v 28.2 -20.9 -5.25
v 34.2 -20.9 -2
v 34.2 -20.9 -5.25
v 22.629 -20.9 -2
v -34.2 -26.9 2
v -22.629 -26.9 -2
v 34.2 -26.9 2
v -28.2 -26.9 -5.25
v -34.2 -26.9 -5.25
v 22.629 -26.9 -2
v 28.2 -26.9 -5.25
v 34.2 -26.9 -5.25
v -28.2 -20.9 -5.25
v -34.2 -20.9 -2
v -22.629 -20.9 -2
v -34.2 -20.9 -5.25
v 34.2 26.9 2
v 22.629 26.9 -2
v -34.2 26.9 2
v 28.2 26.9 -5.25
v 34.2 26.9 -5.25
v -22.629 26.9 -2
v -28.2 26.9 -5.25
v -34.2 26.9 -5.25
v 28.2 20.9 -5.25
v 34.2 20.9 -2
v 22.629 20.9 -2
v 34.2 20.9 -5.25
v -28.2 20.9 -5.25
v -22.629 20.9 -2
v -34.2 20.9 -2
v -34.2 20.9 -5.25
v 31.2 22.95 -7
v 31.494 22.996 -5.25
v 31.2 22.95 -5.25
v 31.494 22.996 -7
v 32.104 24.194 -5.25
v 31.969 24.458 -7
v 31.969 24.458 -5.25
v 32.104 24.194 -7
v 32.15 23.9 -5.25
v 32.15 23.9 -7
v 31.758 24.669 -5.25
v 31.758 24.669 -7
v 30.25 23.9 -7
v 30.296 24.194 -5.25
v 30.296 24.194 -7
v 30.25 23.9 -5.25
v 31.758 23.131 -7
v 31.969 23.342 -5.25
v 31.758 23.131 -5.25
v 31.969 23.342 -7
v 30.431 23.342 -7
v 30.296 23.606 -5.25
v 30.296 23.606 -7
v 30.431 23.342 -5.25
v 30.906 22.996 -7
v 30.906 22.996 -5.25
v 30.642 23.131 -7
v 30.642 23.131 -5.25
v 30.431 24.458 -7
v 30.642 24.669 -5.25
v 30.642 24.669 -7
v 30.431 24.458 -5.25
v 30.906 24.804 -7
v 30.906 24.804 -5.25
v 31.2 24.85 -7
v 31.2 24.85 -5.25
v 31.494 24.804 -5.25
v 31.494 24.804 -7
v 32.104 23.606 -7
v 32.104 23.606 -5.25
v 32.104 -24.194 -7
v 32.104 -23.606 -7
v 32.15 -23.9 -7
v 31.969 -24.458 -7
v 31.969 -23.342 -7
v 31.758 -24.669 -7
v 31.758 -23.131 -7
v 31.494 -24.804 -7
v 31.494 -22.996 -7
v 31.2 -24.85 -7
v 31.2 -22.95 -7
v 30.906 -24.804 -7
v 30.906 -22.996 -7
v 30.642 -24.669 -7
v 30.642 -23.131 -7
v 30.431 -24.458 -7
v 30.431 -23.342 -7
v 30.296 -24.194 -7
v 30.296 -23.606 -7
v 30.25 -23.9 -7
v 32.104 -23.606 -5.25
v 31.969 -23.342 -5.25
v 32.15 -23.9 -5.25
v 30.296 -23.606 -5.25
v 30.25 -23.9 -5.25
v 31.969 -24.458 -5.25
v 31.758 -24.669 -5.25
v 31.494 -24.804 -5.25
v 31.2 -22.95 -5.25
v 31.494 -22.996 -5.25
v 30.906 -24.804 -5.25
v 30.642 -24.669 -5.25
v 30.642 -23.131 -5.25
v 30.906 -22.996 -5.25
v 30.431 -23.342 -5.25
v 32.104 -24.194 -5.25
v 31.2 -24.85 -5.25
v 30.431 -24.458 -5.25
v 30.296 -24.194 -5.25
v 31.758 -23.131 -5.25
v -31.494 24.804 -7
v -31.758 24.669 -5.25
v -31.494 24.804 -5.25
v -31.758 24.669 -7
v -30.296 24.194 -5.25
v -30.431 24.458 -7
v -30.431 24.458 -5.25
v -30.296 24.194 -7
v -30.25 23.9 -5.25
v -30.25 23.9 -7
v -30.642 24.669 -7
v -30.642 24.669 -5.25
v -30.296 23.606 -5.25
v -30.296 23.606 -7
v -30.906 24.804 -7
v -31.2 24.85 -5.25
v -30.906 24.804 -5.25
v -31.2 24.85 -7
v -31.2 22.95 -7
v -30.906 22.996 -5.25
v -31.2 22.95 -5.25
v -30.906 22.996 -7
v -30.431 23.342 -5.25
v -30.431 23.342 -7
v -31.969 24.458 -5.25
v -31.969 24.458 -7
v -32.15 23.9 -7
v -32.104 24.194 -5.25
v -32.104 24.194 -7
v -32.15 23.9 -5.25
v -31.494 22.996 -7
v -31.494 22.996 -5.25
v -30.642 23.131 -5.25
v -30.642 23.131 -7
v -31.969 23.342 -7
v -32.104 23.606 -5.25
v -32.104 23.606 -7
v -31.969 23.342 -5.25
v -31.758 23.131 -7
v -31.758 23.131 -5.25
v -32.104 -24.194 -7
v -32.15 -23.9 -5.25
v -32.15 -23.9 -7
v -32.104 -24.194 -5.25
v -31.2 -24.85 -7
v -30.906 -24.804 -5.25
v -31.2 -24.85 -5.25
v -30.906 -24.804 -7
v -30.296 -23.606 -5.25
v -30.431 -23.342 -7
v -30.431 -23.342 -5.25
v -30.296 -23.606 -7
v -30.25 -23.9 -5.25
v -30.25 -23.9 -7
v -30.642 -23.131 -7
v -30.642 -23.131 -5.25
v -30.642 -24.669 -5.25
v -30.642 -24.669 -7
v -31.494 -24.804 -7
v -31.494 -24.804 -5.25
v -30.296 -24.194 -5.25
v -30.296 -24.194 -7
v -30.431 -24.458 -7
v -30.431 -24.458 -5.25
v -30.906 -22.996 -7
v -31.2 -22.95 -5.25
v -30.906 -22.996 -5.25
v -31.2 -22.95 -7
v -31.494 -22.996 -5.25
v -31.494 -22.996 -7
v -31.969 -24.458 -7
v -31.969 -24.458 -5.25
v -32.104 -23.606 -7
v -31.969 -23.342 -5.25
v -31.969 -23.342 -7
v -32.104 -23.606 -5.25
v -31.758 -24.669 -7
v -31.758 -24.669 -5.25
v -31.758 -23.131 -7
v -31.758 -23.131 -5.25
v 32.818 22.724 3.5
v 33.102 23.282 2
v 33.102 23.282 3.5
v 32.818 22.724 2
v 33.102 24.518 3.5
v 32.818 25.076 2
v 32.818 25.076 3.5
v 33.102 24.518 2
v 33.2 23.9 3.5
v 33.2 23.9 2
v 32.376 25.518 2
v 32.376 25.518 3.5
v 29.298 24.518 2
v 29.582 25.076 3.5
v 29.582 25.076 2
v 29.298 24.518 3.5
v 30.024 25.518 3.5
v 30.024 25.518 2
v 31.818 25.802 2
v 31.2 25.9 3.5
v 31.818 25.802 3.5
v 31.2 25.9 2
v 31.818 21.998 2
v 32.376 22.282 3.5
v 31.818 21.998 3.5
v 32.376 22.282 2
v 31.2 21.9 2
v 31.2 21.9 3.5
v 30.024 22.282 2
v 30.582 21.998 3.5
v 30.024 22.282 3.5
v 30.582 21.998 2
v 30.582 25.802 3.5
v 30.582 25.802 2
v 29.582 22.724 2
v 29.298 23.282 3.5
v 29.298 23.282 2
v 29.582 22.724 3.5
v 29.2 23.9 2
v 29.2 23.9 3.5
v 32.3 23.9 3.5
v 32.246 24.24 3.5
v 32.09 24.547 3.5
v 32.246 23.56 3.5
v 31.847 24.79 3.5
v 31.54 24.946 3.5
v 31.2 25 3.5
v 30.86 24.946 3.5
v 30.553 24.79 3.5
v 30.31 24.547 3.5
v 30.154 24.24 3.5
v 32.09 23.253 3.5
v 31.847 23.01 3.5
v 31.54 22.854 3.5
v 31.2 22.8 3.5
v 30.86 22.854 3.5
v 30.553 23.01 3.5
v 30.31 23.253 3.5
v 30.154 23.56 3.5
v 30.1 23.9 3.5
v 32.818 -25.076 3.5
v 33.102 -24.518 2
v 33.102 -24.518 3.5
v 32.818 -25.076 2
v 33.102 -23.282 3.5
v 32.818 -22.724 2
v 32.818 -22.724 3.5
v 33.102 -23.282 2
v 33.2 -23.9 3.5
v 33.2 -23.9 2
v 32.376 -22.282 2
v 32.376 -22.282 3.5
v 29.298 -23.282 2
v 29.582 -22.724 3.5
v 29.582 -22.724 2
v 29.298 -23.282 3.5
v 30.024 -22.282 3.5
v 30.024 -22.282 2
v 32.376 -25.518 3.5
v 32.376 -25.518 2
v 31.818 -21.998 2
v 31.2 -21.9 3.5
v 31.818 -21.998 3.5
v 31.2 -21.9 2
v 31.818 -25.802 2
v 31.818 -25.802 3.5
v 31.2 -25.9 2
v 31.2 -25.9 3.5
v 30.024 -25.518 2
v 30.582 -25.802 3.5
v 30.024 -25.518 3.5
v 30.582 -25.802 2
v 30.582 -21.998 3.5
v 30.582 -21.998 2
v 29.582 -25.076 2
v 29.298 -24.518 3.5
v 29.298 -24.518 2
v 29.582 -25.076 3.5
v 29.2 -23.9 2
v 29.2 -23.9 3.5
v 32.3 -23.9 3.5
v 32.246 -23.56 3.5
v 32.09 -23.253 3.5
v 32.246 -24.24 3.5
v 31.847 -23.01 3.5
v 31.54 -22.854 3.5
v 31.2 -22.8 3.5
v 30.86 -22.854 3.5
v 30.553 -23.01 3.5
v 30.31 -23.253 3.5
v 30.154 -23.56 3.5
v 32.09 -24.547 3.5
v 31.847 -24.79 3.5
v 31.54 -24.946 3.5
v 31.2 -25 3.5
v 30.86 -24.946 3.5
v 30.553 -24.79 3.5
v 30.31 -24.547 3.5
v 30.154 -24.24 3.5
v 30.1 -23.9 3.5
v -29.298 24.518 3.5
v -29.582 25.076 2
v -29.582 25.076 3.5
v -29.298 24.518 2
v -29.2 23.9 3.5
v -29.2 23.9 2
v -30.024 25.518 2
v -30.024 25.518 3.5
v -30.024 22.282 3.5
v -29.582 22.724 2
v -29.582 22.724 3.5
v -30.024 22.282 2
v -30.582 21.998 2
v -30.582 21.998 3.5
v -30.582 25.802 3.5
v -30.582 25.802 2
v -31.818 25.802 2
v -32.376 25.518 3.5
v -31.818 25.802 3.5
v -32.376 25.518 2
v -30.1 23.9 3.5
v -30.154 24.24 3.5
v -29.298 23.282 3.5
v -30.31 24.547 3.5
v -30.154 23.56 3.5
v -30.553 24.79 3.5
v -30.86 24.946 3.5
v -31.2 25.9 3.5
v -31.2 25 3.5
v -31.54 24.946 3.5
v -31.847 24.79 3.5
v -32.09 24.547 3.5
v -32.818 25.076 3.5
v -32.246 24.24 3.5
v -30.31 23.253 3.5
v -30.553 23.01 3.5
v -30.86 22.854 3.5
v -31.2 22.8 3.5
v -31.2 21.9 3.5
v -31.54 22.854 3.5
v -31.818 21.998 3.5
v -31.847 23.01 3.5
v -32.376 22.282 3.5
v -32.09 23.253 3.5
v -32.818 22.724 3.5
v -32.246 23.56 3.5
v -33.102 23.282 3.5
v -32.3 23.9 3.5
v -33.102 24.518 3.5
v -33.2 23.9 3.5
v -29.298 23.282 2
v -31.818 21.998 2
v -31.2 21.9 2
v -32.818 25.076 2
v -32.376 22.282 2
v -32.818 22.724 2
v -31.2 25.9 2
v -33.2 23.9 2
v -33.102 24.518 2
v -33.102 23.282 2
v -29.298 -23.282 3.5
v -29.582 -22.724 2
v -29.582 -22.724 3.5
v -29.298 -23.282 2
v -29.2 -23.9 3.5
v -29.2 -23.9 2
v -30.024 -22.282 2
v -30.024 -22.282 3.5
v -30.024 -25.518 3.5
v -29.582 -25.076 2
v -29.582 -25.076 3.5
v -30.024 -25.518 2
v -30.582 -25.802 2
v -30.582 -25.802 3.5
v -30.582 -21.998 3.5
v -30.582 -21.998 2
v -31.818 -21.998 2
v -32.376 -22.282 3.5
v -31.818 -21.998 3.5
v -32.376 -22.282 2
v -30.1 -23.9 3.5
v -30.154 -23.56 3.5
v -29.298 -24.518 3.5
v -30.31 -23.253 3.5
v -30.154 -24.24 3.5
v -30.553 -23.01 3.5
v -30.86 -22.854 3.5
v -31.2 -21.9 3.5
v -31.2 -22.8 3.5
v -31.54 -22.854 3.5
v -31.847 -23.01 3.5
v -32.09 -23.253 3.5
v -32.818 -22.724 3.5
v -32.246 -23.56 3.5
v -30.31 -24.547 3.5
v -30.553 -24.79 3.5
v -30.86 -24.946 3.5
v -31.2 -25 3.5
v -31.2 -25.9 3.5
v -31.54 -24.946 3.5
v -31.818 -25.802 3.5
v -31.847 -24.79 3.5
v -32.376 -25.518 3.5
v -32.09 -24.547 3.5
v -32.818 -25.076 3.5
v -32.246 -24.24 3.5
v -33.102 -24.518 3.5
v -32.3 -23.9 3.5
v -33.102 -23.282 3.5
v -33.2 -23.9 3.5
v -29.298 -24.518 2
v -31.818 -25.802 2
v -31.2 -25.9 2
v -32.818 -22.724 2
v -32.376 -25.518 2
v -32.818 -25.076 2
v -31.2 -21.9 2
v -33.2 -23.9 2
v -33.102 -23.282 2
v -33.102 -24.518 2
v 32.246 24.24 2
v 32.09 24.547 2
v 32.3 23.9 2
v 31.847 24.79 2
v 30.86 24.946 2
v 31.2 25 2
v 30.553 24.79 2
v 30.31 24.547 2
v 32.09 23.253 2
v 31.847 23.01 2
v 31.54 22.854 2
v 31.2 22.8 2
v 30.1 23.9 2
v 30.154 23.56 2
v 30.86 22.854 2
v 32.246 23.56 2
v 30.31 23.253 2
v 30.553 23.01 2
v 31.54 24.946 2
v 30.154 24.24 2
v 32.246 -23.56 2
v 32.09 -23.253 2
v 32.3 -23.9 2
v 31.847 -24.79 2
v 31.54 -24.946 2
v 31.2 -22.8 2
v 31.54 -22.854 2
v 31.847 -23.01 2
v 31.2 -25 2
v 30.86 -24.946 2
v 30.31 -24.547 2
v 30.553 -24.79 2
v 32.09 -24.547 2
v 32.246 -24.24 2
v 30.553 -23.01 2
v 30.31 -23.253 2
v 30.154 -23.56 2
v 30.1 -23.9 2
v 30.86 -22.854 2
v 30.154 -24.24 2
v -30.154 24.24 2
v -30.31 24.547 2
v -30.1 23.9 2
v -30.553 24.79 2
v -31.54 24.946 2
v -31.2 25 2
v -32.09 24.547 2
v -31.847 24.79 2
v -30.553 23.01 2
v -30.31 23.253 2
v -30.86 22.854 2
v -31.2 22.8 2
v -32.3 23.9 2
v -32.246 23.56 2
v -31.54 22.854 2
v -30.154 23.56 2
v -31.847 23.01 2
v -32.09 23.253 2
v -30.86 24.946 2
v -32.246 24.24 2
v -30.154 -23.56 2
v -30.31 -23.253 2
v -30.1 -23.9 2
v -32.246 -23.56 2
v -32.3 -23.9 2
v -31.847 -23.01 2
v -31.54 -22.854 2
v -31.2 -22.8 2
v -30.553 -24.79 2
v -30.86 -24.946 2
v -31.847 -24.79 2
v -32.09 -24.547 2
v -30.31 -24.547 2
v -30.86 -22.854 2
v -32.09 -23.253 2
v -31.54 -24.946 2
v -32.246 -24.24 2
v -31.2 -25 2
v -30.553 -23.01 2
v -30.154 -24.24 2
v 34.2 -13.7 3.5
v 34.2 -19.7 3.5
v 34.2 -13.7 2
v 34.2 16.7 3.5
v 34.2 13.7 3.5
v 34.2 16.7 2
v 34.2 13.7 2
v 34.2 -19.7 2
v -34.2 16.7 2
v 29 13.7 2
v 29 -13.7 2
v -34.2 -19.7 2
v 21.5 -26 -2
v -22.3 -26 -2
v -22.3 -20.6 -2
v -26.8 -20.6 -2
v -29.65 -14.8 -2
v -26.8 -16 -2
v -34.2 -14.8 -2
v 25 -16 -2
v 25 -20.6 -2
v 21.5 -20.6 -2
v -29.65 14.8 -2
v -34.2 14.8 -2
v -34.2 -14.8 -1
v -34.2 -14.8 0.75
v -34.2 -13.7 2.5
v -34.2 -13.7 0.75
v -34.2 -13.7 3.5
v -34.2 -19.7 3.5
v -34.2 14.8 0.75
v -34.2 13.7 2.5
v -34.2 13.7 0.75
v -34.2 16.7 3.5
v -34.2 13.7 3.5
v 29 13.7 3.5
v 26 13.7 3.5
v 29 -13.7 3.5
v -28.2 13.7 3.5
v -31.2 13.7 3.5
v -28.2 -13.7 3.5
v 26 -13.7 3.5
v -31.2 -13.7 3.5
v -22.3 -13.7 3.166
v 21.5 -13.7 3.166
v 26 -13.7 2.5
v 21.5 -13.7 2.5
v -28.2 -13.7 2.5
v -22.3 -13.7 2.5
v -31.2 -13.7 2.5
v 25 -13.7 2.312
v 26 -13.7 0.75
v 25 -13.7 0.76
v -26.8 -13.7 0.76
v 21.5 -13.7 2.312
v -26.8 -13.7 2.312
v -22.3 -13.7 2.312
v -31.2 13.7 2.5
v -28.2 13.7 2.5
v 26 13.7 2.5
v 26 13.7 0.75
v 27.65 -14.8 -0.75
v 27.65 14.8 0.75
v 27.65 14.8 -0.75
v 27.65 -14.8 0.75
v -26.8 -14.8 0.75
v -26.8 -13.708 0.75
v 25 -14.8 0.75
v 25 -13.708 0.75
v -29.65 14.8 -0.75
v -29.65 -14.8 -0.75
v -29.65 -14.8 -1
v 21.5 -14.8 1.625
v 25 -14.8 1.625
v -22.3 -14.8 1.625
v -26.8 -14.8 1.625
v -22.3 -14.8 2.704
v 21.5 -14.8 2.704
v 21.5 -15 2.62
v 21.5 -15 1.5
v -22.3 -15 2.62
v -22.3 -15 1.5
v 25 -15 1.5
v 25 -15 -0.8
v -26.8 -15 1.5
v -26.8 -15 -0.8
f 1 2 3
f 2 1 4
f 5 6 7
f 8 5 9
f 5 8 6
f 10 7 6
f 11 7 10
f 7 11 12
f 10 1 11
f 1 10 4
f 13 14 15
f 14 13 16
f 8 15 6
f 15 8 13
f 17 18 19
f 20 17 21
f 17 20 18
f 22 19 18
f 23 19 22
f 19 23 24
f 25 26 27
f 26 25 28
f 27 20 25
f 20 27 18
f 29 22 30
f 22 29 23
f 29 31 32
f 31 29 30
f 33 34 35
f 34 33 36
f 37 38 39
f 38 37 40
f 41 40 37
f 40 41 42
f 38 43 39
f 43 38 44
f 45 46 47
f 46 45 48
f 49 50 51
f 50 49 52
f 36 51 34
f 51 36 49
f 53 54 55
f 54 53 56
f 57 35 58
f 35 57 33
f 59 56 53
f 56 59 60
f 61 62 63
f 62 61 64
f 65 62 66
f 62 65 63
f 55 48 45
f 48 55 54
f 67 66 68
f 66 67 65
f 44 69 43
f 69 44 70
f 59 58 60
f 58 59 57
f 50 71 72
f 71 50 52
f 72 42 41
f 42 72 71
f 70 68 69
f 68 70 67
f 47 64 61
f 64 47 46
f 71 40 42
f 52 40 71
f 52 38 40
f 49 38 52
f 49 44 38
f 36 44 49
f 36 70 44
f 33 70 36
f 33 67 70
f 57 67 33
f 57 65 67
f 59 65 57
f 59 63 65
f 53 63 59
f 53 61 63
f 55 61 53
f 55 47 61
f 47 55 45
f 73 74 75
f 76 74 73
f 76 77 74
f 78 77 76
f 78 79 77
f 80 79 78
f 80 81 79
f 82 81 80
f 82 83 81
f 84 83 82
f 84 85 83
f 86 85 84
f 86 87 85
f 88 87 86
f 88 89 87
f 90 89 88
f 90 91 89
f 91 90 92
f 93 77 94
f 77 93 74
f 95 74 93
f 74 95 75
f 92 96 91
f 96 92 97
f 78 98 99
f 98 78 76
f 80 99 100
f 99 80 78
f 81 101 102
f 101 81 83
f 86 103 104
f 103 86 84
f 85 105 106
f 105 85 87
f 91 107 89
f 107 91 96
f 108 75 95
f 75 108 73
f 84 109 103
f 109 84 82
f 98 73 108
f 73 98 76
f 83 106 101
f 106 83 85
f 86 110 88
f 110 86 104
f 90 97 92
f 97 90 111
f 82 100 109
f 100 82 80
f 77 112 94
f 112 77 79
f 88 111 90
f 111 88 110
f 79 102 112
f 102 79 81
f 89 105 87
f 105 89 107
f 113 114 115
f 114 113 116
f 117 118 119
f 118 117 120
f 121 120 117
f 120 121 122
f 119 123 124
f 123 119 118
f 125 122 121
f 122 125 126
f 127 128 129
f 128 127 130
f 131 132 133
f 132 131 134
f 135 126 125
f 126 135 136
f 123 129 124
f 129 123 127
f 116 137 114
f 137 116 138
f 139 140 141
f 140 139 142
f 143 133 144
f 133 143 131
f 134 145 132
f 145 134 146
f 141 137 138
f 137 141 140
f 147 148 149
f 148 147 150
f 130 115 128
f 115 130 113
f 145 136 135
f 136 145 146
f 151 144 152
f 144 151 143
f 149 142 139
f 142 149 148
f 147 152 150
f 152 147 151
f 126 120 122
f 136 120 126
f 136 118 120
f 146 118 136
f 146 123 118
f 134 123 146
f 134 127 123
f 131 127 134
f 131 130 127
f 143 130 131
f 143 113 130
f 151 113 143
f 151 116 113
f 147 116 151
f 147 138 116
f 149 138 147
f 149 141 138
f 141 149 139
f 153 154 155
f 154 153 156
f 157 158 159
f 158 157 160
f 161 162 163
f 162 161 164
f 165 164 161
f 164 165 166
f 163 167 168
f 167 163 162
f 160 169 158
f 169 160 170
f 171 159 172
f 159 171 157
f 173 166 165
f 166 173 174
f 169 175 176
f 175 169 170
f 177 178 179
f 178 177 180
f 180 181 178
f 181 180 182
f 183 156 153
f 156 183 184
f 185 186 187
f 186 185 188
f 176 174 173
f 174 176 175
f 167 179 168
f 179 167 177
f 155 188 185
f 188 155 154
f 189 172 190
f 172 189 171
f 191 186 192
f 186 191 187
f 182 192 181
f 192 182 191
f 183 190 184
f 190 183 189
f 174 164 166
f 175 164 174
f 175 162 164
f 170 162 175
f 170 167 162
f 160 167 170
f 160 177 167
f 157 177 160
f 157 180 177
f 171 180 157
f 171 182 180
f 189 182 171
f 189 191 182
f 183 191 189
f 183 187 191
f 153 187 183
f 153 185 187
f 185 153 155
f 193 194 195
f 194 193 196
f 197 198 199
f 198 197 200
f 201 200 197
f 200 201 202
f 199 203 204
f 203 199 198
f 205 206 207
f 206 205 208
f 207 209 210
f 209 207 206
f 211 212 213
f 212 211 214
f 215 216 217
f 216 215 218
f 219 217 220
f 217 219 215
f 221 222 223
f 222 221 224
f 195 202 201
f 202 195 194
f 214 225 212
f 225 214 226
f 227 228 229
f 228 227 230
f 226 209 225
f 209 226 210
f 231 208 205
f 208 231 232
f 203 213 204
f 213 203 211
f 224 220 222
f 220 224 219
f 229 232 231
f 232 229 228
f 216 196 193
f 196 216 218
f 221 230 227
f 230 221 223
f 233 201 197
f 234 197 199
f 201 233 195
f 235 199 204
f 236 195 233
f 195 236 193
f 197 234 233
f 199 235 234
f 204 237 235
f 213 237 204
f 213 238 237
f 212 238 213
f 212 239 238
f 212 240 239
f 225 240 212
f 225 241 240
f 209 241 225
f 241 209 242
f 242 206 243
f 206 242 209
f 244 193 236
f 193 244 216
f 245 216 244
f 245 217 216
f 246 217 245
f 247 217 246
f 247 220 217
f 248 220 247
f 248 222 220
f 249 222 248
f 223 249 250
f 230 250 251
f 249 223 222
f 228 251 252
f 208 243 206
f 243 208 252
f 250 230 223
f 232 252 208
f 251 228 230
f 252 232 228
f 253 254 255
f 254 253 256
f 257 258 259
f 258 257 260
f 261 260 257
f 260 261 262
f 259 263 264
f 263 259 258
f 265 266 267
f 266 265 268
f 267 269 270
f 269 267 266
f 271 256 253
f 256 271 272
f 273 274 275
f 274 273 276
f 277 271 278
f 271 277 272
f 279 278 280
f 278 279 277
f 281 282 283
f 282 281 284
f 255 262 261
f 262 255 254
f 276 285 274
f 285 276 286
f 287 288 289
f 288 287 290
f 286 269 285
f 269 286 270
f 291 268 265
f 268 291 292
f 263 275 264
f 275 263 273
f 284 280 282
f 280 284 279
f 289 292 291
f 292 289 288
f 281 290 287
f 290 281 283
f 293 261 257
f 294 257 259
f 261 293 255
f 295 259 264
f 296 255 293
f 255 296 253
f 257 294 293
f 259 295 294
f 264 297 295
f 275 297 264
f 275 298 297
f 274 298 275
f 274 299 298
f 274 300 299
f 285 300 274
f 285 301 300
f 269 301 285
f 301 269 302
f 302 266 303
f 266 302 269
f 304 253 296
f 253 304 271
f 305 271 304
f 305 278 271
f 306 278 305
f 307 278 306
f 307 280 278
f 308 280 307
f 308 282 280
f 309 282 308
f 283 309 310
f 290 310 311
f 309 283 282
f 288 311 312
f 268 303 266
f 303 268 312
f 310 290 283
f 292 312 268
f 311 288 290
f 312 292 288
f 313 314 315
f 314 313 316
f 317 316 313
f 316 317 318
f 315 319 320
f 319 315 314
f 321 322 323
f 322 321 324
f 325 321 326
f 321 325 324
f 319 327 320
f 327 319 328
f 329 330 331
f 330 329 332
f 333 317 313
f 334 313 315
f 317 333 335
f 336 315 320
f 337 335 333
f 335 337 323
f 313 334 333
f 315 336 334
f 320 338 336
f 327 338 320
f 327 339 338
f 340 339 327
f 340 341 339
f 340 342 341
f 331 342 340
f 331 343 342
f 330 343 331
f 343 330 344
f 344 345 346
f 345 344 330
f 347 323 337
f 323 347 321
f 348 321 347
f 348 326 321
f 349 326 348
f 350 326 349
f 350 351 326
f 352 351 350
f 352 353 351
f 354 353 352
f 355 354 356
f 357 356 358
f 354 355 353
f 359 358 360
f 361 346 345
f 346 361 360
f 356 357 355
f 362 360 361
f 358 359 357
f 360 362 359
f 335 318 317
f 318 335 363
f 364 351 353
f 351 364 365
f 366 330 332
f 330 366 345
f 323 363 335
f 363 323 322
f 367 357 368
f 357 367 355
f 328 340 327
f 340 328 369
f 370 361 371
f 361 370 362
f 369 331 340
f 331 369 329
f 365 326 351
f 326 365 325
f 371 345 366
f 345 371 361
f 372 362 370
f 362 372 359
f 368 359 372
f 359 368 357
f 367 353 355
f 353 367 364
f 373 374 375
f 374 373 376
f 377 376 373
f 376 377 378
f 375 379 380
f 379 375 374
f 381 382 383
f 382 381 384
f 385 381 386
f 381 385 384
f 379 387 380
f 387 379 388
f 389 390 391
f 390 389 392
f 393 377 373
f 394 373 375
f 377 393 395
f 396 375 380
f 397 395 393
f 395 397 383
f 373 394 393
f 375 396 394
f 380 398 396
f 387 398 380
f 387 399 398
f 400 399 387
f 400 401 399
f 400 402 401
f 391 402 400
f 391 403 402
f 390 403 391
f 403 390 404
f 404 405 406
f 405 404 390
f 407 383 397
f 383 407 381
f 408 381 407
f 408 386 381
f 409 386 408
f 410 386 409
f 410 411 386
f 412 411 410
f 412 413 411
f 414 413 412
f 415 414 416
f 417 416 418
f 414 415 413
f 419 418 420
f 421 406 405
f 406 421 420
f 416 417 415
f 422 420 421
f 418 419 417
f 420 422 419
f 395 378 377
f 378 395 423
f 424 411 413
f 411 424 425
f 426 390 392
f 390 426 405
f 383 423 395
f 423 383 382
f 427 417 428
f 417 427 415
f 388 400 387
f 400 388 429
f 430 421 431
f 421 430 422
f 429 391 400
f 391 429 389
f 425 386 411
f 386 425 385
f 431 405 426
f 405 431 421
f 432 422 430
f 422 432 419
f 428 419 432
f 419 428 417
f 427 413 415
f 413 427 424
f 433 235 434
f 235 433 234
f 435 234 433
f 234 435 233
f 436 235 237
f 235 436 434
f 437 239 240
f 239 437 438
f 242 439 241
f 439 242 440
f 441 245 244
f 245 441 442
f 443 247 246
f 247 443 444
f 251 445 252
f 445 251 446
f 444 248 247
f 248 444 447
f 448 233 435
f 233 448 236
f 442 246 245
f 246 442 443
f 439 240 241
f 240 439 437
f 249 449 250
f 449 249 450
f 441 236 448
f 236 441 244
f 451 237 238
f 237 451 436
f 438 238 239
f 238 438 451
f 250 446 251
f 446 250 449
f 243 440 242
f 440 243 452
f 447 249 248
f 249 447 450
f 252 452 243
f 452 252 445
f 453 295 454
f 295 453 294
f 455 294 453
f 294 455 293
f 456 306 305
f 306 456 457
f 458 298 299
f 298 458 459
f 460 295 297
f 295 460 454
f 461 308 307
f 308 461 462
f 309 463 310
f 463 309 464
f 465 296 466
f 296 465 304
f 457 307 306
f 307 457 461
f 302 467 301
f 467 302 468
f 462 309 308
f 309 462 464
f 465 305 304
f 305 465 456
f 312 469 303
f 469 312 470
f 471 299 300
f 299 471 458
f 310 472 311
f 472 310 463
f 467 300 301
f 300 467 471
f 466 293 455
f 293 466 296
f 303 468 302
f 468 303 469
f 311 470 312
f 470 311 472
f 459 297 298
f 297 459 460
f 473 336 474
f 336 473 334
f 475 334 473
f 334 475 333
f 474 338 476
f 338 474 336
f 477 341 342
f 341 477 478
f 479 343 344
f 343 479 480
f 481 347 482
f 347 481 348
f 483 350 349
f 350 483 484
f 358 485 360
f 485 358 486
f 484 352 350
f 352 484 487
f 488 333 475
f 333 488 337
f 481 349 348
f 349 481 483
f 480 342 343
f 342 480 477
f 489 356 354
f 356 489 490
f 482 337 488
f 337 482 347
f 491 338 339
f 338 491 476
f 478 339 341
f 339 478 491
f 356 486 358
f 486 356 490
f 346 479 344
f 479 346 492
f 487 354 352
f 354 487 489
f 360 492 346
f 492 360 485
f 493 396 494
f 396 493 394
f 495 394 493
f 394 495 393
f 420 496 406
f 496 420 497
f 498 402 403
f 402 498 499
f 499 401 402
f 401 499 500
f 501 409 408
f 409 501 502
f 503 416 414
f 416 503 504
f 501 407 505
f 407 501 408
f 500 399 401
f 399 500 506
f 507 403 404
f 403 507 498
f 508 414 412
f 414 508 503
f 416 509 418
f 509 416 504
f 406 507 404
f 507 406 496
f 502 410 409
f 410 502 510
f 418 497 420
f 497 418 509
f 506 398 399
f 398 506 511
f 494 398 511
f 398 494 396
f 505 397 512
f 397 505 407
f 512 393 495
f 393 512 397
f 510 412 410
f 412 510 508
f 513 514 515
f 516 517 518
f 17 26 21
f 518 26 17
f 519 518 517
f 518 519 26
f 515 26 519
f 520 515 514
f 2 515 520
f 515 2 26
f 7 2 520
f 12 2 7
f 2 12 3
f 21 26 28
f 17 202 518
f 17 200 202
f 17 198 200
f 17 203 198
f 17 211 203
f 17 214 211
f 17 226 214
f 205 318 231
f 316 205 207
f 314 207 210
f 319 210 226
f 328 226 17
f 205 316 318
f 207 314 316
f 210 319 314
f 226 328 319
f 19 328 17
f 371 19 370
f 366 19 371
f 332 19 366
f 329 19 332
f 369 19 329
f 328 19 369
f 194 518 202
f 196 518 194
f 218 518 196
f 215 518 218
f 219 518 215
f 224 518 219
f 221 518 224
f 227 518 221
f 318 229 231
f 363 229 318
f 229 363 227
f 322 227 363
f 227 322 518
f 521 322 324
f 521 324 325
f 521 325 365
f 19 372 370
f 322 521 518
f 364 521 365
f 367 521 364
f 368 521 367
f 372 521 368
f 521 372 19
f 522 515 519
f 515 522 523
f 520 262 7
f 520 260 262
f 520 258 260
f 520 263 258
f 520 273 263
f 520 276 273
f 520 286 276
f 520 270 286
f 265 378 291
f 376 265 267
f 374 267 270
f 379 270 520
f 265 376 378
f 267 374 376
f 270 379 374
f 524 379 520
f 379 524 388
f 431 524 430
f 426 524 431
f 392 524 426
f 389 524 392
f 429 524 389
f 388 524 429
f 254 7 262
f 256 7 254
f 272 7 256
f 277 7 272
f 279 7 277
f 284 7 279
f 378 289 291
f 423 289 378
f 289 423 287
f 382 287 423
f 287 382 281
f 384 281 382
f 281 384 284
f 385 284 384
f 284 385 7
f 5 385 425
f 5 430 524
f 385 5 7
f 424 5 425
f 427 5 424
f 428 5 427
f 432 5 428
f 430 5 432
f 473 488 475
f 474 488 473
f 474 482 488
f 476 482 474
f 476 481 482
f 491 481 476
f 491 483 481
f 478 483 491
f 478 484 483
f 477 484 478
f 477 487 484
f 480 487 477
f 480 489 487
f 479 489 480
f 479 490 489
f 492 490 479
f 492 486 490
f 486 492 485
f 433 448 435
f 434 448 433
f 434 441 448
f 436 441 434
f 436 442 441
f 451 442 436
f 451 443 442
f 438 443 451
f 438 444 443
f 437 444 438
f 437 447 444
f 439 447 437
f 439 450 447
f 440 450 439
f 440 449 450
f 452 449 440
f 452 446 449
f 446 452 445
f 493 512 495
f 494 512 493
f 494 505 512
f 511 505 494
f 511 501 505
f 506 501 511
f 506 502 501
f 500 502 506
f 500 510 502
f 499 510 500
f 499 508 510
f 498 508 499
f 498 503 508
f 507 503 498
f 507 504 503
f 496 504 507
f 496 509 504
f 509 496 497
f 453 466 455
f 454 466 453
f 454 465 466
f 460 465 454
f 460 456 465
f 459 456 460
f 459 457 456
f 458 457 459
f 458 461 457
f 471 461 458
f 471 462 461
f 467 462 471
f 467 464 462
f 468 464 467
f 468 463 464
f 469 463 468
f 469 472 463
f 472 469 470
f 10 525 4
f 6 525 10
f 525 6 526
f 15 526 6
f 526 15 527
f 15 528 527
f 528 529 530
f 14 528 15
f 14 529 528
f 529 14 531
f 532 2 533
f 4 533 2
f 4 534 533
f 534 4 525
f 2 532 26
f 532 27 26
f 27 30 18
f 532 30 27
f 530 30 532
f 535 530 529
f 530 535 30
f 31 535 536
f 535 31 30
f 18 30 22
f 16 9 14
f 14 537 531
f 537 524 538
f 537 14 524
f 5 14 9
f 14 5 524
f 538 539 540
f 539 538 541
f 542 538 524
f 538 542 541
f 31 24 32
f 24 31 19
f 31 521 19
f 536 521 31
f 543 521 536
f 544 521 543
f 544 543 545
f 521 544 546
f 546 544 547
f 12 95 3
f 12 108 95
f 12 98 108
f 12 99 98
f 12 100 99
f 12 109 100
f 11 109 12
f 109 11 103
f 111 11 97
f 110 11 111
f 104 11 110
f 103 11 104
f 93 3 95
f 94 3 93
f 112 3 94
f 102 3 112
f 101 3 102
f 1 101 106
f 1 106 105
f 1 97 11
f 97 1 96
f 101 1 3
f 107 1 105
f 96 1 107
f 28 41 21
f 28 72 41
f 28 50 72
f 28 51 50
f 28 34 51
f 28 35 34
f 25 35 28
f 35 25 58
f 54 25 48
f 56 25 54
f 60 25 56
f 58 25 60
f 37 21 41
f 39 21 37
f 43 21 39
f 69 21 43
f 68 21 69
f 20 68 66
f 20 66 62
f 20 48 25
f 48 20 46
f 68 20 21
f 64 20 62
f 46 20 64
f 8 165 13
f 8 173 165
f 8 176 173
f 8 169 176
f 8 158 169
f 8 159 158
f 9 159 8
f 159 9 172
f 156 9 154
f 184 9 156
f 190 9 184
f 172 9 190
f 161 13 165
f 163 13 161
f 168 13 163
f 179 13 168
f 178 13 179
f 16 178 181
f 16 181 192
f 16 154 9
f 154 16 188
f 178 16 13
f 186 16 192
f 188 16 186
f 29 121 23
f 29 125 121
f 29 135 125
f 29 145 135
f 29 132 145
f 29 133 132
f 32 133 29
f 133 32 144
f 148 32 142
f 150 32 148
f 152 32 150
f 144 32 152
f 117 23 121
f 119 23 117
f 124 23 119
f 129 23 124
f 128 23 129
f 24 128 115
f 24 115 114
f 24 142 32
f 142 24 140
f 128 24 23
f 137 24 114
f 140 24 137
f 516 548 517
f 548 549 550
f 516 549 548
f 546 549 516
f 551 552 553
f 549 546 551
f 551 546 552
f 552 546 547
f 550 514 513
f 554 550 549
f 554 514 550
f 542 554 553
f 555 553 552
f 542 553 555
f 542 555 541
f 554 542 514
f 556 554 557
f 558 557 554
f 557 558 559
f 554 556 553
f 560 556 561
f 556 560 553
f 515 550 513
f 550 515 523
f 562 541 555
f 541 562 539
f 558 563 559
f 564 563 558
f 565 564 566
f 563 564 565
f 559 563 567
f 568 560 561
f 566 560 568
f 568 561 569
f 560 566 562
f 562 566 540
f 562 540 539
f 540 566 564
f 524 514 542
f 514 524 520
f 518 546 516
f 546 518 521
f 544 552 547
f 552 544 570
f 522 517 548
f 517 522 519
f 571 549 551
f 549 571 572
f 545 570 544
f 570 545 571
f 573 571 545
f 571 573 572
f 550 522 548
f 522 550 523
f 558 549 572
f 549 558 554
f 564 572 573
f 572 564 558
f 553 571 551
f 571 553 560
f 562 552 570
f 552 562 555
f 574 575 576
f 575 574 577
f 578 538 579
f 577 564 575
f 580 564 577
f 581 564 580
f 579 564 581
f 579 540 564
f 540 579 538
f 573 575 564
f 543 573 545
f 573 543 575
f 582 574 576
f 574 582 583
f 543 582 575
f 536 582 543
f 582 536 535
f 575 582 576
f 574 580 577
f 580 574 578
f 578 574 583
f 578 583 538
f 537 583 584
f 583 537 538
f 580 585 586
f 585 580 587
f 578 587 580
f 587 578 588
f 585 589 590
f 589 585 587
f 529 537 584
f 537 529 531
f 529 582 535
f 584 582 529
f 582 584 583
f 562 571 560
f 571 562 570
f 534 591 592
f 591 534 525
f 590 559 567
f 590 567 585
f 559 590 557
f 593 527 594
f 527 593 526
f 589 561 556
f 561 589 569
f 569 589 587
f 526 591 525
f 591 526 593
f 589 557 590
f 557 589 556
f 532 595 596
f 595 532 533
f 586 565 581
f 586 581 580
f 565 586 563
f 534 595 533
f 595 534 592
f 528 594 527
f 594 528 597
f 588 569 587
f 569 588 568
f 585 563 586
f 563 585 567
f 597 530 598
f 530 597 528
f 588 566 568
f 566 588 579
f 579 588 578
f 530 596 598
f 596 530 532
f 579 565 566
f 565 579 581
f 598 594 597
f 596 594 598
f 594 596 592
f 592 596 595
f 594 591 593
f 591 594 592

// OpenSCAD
// file: common.scad
// PCB size
pcb = [140, 54, 1.6];
pcb_screw_diam = 3.6;
pcb_screw_pos = [4, 4];
pcb_bolt_diam = 6.5;
pcb_bolt_depth = 3.2;
pcb_bolt_length = 30;
pcb_image = "picoclock_scaled.png";
pcb_margin = 0.4;

// general thickness
t = 1.5;

front = [pcb[0] + t * 2, pcb[1] + t * 2, 12];
back = [pcb[0] + t * 2, pcb[1] + t * 2, 60];
pcb_bolt_back_depth = back[2] - pcb_bolt_length + t + pcb_bolt_depth + front[2];

pcb_support = [pcb_screw_pos[0]*2+pcb_margin/2, pcb_screw_pos[0]*2+pcb_margin/2, front[2] - pcb[2] - t];

joint_margin = 0.2;
joint_width = t/2 - joint_margin;

screen_size = [59.3, 29.6, 1.5];
screen_visible_size = [52, 27.4, 3];

button_x = 50;
button_y = 13;
button_radius = 3;

usbc = [3, 10.7, 10.3];
usba = [6, 15.5, 16.3];
sd = [1.6, 15.7, 19.7];
jack = [4.5, 6.3, 14];
usbc_pos = 9.6;  // from center
usba_pos = 8.14; // from center
sd_pos = 7;
jack_pos = 9.85;

speaker_plate = [132, 10, 19];
speaker = [100, 36, 28];
speaker_support = [11, pcb_support[1], 22];

speaker2 = [51.5, 19.5, 30.3];
speaker2_baffle_diam = 47;
speaker2_screw_diam = 60;
speaker2_screw_from_center = speaker2_screw_diam / 2 * sqrt(2) / 2;
speaker2_support = [52, 52, 2];

screen_holder_screw_rad = 2;
screen_holder_out = [screen_holder_screw_rad*3, pcb[1] - 0.2, 3.5];
//screen_holder_in = [70.4, 39.2, 4];
screen_holder_in = [68.4, 39.2, 4];
screen_size_toborder = 7.1;


// pin position:
// 32.2 / 24
// center: 144 / 2, 58 / 2
// => 72 +/- 31.2 => 40.8 / 103.2
// => 29 +- 24 => 5 / 53
// +80:
// 120.8 / 183.2
// 85 / 133
// main file
include <common.scad>;


module support() {
    cube(screen_holder_in, center=true);

    translate([0, 0]) cube([screen_holder_in[0], screen_holder_out[1], screen_holder_in[2]], center=true);
    // 2 holders

    // 4 screw supports
    $x = screen_holder_in[0]/2-screen_holder_out[0]/2;
    $y = -screen_holder_out[1]/2+screen_holder_out[0]/2;
    $z = -screen_holder_out[2];
    translate([$x, $y, $z])
        cube([screen_holder_out[0], screen_holder_out[0], screen_holder_out[2]], center=true);
    $y2 = screen_holder_out[1]/2-screen_holder_out[0]/2;
    translate([$x, $y2, $z])
        cube([screen_holder_out[0], screen_holder_out[0], screen_holder_out[2]], center=true);
    translate([-screen_holder_in[0]/2+screen_holder_out[0]/2, -screen_holder_out[1]/2+screen_holder_out[0]/2, -screen_holder_out[2]])
        cube([screen_holder_out[0], screen_holder_out[0], screen_holder_out[2]], center=true);
    translate([-screen_holder_in[0]/2+screen_holder_out[0]/2, screen_holder_out[1]/2-screen_holder_out[0]/2, -screen_holder_out[2]])
        cube([screen_holder_out[0], screen_holder_out[0], screen_holder_out[2]], center=true);

    // Support for printing
    for (x = [0:3]) {
        $posy = x < 2 ? -screen_holder_out[1]/2 + screen_holder_out[0]: screen_holder_out[1]/2;
        $mirrorz = x % 2 == 0 ? 1 : 0;
        mirror([$mirrorz,0,0])
            translate([-screen_holder_in[0]/2+screen_holder_out[0], $posy, 0 - screen_holder_out[2]/2])
                rotate([90, 90])
                    linear_extrude(screen_holder_out[0])
                        polygon(points=[[0,0], [screen_holder_out[2], 0], [0, screen_holder_out[0]]], paths=[[0,1,2]]);
    }

    // Pins toward PCB
    for (x = [0:1]) {
        for (y = [0:1]) {
            translate([
                (x == 0 ? 1 : -1) * screen_holder_in[0]/2 + (x == 0 ? -1 : 1) * screen_holder_out[0]/2,
                (y == 0 ? 1 : -1) * screen_holder_out[1]/2 + (y == 0 ? -1 : 1) * screen_holder_screw_rad + (y == 0 ? -1 : 1) * 1,
                -screen_holder_out[2]-2-1.5])
            cylinder(h=2, d=1.9, $fn=20);
        }
    }

    // Blocks for case pins
    case_pin_height = 3.5;
    difference() {
        union() {
            for (x = [0:1]) {
                for (y = [0:1]) {
                    translate([
                        (x == 0 ? 1 : -1) * screen_holder_in[0]/2 + (x == 0 ? -1 : 1) * screen_holder_out[0]/2,
                        (y == 0 ? 1 : -1) * screen_holder_out[1]/2 + (y == 0 ? -1 : 1) * screen_holder_screw_rad + (y == 0 ? -1 : 1) * 1,
                        0])
                    cylinder(h=case_pin_height, d=4, $fn=20);
                }
            }
        }
        for (x = [0:1]) {
            for (y = [0:1]) {
                translate([
                    (x == 0 ? 1 : -1) * screen_holder_in[0]/2 + (x == 0 ? -1 : 1) * screen_holder_out[0]/2,
                    (y == 0 ? 1 : -1) * screen_holder_out[1]/2 + (y == 0 ? -1 : 1) * screen_holder_screw_rad + (y == 0 ? -1 : 1) * 1,
                    0])
                cylinder(h=case_pin_height, d=2.2, $fn=20);
            }
        }
    }

    // Borders
    border_width = 3;
    border_height = 1.5;
    translate([
        -screen_holder_in[0]/2,
        -screen_visible_size[1]/2-border_width*2,
        screen_holder_in[2]/2
    ])
        cube([screen_holder_in[0], border_width*2, border_height]);
    translate([
        -screen_holder_in[0]/2,
        screen_visible_size[1]/2,
        screen_holder_in[2]/2
    ])
        cube([screen_holder_in[0], border_width, border_height]);
    translate([
        screen_holder_in[0]/2-8.2,
        -screen_visible_size[1]/2,
        screen_holder_in[2]/2
    ])
        cube([border_width, screen_visible_size[1], border_height]);
    translate([
        -screen_holder_in[0]/2+border_width,
        -screen_visible_size[1]/2,
        screen_holder_in[2]/2
    ])
        cube([border_width, screen_visible_size[1], border_height]);
}

module screen_holder() {
    difference() {
        support();

        translate([-screen_size_toborder/2-2, 0, 0]) cube([
			screen_size[0]+screen_size_toborder,
			screen_size[1],
			screen_size[2]
		], center=true);

		// Opening to slide the screen
        translate([-screen_size[0]/2-screen_size_toborder/2, 0, -2])
            cube([screen_size_toborder, screen_size[1], 4], center=true);

        // Visible screen size
        translate([0, 0, 1]) cube(screen_visible_size, center=true);

        // Remove material on the left to ease printing
        translate([-screen_holder_in[0]/2+5, 0, 1]) cube([10, screen_visible_size[1], screen_visible_size[2]], center=true);

        // Light guide
        translate([21.5, -11, 4])
                rotate([180, 90])
                    linear_extrude(screen_holder_out[1]-10)
                        polygon(points=[[-0.3,0], [6, 5], [6, 15]], paths=[[0,1,2]]);
        translate([25, -11, 4])
                rotate([180, 90])
                    linear_extrude(screen_holder_out[1]-2)
                        polygon(points=[[0,0], [6, 5], [6, 9.6]], paths=[[0,1,2]]);
    }

    // Light shade
    light_shade_width = 0.3;
    translate([0, -screen_size[1]/2 - light_shade_width/2, 1])
        cube([screen_holder_in[0], light_shade_width, 4], center=true);
}

screen_holder();
